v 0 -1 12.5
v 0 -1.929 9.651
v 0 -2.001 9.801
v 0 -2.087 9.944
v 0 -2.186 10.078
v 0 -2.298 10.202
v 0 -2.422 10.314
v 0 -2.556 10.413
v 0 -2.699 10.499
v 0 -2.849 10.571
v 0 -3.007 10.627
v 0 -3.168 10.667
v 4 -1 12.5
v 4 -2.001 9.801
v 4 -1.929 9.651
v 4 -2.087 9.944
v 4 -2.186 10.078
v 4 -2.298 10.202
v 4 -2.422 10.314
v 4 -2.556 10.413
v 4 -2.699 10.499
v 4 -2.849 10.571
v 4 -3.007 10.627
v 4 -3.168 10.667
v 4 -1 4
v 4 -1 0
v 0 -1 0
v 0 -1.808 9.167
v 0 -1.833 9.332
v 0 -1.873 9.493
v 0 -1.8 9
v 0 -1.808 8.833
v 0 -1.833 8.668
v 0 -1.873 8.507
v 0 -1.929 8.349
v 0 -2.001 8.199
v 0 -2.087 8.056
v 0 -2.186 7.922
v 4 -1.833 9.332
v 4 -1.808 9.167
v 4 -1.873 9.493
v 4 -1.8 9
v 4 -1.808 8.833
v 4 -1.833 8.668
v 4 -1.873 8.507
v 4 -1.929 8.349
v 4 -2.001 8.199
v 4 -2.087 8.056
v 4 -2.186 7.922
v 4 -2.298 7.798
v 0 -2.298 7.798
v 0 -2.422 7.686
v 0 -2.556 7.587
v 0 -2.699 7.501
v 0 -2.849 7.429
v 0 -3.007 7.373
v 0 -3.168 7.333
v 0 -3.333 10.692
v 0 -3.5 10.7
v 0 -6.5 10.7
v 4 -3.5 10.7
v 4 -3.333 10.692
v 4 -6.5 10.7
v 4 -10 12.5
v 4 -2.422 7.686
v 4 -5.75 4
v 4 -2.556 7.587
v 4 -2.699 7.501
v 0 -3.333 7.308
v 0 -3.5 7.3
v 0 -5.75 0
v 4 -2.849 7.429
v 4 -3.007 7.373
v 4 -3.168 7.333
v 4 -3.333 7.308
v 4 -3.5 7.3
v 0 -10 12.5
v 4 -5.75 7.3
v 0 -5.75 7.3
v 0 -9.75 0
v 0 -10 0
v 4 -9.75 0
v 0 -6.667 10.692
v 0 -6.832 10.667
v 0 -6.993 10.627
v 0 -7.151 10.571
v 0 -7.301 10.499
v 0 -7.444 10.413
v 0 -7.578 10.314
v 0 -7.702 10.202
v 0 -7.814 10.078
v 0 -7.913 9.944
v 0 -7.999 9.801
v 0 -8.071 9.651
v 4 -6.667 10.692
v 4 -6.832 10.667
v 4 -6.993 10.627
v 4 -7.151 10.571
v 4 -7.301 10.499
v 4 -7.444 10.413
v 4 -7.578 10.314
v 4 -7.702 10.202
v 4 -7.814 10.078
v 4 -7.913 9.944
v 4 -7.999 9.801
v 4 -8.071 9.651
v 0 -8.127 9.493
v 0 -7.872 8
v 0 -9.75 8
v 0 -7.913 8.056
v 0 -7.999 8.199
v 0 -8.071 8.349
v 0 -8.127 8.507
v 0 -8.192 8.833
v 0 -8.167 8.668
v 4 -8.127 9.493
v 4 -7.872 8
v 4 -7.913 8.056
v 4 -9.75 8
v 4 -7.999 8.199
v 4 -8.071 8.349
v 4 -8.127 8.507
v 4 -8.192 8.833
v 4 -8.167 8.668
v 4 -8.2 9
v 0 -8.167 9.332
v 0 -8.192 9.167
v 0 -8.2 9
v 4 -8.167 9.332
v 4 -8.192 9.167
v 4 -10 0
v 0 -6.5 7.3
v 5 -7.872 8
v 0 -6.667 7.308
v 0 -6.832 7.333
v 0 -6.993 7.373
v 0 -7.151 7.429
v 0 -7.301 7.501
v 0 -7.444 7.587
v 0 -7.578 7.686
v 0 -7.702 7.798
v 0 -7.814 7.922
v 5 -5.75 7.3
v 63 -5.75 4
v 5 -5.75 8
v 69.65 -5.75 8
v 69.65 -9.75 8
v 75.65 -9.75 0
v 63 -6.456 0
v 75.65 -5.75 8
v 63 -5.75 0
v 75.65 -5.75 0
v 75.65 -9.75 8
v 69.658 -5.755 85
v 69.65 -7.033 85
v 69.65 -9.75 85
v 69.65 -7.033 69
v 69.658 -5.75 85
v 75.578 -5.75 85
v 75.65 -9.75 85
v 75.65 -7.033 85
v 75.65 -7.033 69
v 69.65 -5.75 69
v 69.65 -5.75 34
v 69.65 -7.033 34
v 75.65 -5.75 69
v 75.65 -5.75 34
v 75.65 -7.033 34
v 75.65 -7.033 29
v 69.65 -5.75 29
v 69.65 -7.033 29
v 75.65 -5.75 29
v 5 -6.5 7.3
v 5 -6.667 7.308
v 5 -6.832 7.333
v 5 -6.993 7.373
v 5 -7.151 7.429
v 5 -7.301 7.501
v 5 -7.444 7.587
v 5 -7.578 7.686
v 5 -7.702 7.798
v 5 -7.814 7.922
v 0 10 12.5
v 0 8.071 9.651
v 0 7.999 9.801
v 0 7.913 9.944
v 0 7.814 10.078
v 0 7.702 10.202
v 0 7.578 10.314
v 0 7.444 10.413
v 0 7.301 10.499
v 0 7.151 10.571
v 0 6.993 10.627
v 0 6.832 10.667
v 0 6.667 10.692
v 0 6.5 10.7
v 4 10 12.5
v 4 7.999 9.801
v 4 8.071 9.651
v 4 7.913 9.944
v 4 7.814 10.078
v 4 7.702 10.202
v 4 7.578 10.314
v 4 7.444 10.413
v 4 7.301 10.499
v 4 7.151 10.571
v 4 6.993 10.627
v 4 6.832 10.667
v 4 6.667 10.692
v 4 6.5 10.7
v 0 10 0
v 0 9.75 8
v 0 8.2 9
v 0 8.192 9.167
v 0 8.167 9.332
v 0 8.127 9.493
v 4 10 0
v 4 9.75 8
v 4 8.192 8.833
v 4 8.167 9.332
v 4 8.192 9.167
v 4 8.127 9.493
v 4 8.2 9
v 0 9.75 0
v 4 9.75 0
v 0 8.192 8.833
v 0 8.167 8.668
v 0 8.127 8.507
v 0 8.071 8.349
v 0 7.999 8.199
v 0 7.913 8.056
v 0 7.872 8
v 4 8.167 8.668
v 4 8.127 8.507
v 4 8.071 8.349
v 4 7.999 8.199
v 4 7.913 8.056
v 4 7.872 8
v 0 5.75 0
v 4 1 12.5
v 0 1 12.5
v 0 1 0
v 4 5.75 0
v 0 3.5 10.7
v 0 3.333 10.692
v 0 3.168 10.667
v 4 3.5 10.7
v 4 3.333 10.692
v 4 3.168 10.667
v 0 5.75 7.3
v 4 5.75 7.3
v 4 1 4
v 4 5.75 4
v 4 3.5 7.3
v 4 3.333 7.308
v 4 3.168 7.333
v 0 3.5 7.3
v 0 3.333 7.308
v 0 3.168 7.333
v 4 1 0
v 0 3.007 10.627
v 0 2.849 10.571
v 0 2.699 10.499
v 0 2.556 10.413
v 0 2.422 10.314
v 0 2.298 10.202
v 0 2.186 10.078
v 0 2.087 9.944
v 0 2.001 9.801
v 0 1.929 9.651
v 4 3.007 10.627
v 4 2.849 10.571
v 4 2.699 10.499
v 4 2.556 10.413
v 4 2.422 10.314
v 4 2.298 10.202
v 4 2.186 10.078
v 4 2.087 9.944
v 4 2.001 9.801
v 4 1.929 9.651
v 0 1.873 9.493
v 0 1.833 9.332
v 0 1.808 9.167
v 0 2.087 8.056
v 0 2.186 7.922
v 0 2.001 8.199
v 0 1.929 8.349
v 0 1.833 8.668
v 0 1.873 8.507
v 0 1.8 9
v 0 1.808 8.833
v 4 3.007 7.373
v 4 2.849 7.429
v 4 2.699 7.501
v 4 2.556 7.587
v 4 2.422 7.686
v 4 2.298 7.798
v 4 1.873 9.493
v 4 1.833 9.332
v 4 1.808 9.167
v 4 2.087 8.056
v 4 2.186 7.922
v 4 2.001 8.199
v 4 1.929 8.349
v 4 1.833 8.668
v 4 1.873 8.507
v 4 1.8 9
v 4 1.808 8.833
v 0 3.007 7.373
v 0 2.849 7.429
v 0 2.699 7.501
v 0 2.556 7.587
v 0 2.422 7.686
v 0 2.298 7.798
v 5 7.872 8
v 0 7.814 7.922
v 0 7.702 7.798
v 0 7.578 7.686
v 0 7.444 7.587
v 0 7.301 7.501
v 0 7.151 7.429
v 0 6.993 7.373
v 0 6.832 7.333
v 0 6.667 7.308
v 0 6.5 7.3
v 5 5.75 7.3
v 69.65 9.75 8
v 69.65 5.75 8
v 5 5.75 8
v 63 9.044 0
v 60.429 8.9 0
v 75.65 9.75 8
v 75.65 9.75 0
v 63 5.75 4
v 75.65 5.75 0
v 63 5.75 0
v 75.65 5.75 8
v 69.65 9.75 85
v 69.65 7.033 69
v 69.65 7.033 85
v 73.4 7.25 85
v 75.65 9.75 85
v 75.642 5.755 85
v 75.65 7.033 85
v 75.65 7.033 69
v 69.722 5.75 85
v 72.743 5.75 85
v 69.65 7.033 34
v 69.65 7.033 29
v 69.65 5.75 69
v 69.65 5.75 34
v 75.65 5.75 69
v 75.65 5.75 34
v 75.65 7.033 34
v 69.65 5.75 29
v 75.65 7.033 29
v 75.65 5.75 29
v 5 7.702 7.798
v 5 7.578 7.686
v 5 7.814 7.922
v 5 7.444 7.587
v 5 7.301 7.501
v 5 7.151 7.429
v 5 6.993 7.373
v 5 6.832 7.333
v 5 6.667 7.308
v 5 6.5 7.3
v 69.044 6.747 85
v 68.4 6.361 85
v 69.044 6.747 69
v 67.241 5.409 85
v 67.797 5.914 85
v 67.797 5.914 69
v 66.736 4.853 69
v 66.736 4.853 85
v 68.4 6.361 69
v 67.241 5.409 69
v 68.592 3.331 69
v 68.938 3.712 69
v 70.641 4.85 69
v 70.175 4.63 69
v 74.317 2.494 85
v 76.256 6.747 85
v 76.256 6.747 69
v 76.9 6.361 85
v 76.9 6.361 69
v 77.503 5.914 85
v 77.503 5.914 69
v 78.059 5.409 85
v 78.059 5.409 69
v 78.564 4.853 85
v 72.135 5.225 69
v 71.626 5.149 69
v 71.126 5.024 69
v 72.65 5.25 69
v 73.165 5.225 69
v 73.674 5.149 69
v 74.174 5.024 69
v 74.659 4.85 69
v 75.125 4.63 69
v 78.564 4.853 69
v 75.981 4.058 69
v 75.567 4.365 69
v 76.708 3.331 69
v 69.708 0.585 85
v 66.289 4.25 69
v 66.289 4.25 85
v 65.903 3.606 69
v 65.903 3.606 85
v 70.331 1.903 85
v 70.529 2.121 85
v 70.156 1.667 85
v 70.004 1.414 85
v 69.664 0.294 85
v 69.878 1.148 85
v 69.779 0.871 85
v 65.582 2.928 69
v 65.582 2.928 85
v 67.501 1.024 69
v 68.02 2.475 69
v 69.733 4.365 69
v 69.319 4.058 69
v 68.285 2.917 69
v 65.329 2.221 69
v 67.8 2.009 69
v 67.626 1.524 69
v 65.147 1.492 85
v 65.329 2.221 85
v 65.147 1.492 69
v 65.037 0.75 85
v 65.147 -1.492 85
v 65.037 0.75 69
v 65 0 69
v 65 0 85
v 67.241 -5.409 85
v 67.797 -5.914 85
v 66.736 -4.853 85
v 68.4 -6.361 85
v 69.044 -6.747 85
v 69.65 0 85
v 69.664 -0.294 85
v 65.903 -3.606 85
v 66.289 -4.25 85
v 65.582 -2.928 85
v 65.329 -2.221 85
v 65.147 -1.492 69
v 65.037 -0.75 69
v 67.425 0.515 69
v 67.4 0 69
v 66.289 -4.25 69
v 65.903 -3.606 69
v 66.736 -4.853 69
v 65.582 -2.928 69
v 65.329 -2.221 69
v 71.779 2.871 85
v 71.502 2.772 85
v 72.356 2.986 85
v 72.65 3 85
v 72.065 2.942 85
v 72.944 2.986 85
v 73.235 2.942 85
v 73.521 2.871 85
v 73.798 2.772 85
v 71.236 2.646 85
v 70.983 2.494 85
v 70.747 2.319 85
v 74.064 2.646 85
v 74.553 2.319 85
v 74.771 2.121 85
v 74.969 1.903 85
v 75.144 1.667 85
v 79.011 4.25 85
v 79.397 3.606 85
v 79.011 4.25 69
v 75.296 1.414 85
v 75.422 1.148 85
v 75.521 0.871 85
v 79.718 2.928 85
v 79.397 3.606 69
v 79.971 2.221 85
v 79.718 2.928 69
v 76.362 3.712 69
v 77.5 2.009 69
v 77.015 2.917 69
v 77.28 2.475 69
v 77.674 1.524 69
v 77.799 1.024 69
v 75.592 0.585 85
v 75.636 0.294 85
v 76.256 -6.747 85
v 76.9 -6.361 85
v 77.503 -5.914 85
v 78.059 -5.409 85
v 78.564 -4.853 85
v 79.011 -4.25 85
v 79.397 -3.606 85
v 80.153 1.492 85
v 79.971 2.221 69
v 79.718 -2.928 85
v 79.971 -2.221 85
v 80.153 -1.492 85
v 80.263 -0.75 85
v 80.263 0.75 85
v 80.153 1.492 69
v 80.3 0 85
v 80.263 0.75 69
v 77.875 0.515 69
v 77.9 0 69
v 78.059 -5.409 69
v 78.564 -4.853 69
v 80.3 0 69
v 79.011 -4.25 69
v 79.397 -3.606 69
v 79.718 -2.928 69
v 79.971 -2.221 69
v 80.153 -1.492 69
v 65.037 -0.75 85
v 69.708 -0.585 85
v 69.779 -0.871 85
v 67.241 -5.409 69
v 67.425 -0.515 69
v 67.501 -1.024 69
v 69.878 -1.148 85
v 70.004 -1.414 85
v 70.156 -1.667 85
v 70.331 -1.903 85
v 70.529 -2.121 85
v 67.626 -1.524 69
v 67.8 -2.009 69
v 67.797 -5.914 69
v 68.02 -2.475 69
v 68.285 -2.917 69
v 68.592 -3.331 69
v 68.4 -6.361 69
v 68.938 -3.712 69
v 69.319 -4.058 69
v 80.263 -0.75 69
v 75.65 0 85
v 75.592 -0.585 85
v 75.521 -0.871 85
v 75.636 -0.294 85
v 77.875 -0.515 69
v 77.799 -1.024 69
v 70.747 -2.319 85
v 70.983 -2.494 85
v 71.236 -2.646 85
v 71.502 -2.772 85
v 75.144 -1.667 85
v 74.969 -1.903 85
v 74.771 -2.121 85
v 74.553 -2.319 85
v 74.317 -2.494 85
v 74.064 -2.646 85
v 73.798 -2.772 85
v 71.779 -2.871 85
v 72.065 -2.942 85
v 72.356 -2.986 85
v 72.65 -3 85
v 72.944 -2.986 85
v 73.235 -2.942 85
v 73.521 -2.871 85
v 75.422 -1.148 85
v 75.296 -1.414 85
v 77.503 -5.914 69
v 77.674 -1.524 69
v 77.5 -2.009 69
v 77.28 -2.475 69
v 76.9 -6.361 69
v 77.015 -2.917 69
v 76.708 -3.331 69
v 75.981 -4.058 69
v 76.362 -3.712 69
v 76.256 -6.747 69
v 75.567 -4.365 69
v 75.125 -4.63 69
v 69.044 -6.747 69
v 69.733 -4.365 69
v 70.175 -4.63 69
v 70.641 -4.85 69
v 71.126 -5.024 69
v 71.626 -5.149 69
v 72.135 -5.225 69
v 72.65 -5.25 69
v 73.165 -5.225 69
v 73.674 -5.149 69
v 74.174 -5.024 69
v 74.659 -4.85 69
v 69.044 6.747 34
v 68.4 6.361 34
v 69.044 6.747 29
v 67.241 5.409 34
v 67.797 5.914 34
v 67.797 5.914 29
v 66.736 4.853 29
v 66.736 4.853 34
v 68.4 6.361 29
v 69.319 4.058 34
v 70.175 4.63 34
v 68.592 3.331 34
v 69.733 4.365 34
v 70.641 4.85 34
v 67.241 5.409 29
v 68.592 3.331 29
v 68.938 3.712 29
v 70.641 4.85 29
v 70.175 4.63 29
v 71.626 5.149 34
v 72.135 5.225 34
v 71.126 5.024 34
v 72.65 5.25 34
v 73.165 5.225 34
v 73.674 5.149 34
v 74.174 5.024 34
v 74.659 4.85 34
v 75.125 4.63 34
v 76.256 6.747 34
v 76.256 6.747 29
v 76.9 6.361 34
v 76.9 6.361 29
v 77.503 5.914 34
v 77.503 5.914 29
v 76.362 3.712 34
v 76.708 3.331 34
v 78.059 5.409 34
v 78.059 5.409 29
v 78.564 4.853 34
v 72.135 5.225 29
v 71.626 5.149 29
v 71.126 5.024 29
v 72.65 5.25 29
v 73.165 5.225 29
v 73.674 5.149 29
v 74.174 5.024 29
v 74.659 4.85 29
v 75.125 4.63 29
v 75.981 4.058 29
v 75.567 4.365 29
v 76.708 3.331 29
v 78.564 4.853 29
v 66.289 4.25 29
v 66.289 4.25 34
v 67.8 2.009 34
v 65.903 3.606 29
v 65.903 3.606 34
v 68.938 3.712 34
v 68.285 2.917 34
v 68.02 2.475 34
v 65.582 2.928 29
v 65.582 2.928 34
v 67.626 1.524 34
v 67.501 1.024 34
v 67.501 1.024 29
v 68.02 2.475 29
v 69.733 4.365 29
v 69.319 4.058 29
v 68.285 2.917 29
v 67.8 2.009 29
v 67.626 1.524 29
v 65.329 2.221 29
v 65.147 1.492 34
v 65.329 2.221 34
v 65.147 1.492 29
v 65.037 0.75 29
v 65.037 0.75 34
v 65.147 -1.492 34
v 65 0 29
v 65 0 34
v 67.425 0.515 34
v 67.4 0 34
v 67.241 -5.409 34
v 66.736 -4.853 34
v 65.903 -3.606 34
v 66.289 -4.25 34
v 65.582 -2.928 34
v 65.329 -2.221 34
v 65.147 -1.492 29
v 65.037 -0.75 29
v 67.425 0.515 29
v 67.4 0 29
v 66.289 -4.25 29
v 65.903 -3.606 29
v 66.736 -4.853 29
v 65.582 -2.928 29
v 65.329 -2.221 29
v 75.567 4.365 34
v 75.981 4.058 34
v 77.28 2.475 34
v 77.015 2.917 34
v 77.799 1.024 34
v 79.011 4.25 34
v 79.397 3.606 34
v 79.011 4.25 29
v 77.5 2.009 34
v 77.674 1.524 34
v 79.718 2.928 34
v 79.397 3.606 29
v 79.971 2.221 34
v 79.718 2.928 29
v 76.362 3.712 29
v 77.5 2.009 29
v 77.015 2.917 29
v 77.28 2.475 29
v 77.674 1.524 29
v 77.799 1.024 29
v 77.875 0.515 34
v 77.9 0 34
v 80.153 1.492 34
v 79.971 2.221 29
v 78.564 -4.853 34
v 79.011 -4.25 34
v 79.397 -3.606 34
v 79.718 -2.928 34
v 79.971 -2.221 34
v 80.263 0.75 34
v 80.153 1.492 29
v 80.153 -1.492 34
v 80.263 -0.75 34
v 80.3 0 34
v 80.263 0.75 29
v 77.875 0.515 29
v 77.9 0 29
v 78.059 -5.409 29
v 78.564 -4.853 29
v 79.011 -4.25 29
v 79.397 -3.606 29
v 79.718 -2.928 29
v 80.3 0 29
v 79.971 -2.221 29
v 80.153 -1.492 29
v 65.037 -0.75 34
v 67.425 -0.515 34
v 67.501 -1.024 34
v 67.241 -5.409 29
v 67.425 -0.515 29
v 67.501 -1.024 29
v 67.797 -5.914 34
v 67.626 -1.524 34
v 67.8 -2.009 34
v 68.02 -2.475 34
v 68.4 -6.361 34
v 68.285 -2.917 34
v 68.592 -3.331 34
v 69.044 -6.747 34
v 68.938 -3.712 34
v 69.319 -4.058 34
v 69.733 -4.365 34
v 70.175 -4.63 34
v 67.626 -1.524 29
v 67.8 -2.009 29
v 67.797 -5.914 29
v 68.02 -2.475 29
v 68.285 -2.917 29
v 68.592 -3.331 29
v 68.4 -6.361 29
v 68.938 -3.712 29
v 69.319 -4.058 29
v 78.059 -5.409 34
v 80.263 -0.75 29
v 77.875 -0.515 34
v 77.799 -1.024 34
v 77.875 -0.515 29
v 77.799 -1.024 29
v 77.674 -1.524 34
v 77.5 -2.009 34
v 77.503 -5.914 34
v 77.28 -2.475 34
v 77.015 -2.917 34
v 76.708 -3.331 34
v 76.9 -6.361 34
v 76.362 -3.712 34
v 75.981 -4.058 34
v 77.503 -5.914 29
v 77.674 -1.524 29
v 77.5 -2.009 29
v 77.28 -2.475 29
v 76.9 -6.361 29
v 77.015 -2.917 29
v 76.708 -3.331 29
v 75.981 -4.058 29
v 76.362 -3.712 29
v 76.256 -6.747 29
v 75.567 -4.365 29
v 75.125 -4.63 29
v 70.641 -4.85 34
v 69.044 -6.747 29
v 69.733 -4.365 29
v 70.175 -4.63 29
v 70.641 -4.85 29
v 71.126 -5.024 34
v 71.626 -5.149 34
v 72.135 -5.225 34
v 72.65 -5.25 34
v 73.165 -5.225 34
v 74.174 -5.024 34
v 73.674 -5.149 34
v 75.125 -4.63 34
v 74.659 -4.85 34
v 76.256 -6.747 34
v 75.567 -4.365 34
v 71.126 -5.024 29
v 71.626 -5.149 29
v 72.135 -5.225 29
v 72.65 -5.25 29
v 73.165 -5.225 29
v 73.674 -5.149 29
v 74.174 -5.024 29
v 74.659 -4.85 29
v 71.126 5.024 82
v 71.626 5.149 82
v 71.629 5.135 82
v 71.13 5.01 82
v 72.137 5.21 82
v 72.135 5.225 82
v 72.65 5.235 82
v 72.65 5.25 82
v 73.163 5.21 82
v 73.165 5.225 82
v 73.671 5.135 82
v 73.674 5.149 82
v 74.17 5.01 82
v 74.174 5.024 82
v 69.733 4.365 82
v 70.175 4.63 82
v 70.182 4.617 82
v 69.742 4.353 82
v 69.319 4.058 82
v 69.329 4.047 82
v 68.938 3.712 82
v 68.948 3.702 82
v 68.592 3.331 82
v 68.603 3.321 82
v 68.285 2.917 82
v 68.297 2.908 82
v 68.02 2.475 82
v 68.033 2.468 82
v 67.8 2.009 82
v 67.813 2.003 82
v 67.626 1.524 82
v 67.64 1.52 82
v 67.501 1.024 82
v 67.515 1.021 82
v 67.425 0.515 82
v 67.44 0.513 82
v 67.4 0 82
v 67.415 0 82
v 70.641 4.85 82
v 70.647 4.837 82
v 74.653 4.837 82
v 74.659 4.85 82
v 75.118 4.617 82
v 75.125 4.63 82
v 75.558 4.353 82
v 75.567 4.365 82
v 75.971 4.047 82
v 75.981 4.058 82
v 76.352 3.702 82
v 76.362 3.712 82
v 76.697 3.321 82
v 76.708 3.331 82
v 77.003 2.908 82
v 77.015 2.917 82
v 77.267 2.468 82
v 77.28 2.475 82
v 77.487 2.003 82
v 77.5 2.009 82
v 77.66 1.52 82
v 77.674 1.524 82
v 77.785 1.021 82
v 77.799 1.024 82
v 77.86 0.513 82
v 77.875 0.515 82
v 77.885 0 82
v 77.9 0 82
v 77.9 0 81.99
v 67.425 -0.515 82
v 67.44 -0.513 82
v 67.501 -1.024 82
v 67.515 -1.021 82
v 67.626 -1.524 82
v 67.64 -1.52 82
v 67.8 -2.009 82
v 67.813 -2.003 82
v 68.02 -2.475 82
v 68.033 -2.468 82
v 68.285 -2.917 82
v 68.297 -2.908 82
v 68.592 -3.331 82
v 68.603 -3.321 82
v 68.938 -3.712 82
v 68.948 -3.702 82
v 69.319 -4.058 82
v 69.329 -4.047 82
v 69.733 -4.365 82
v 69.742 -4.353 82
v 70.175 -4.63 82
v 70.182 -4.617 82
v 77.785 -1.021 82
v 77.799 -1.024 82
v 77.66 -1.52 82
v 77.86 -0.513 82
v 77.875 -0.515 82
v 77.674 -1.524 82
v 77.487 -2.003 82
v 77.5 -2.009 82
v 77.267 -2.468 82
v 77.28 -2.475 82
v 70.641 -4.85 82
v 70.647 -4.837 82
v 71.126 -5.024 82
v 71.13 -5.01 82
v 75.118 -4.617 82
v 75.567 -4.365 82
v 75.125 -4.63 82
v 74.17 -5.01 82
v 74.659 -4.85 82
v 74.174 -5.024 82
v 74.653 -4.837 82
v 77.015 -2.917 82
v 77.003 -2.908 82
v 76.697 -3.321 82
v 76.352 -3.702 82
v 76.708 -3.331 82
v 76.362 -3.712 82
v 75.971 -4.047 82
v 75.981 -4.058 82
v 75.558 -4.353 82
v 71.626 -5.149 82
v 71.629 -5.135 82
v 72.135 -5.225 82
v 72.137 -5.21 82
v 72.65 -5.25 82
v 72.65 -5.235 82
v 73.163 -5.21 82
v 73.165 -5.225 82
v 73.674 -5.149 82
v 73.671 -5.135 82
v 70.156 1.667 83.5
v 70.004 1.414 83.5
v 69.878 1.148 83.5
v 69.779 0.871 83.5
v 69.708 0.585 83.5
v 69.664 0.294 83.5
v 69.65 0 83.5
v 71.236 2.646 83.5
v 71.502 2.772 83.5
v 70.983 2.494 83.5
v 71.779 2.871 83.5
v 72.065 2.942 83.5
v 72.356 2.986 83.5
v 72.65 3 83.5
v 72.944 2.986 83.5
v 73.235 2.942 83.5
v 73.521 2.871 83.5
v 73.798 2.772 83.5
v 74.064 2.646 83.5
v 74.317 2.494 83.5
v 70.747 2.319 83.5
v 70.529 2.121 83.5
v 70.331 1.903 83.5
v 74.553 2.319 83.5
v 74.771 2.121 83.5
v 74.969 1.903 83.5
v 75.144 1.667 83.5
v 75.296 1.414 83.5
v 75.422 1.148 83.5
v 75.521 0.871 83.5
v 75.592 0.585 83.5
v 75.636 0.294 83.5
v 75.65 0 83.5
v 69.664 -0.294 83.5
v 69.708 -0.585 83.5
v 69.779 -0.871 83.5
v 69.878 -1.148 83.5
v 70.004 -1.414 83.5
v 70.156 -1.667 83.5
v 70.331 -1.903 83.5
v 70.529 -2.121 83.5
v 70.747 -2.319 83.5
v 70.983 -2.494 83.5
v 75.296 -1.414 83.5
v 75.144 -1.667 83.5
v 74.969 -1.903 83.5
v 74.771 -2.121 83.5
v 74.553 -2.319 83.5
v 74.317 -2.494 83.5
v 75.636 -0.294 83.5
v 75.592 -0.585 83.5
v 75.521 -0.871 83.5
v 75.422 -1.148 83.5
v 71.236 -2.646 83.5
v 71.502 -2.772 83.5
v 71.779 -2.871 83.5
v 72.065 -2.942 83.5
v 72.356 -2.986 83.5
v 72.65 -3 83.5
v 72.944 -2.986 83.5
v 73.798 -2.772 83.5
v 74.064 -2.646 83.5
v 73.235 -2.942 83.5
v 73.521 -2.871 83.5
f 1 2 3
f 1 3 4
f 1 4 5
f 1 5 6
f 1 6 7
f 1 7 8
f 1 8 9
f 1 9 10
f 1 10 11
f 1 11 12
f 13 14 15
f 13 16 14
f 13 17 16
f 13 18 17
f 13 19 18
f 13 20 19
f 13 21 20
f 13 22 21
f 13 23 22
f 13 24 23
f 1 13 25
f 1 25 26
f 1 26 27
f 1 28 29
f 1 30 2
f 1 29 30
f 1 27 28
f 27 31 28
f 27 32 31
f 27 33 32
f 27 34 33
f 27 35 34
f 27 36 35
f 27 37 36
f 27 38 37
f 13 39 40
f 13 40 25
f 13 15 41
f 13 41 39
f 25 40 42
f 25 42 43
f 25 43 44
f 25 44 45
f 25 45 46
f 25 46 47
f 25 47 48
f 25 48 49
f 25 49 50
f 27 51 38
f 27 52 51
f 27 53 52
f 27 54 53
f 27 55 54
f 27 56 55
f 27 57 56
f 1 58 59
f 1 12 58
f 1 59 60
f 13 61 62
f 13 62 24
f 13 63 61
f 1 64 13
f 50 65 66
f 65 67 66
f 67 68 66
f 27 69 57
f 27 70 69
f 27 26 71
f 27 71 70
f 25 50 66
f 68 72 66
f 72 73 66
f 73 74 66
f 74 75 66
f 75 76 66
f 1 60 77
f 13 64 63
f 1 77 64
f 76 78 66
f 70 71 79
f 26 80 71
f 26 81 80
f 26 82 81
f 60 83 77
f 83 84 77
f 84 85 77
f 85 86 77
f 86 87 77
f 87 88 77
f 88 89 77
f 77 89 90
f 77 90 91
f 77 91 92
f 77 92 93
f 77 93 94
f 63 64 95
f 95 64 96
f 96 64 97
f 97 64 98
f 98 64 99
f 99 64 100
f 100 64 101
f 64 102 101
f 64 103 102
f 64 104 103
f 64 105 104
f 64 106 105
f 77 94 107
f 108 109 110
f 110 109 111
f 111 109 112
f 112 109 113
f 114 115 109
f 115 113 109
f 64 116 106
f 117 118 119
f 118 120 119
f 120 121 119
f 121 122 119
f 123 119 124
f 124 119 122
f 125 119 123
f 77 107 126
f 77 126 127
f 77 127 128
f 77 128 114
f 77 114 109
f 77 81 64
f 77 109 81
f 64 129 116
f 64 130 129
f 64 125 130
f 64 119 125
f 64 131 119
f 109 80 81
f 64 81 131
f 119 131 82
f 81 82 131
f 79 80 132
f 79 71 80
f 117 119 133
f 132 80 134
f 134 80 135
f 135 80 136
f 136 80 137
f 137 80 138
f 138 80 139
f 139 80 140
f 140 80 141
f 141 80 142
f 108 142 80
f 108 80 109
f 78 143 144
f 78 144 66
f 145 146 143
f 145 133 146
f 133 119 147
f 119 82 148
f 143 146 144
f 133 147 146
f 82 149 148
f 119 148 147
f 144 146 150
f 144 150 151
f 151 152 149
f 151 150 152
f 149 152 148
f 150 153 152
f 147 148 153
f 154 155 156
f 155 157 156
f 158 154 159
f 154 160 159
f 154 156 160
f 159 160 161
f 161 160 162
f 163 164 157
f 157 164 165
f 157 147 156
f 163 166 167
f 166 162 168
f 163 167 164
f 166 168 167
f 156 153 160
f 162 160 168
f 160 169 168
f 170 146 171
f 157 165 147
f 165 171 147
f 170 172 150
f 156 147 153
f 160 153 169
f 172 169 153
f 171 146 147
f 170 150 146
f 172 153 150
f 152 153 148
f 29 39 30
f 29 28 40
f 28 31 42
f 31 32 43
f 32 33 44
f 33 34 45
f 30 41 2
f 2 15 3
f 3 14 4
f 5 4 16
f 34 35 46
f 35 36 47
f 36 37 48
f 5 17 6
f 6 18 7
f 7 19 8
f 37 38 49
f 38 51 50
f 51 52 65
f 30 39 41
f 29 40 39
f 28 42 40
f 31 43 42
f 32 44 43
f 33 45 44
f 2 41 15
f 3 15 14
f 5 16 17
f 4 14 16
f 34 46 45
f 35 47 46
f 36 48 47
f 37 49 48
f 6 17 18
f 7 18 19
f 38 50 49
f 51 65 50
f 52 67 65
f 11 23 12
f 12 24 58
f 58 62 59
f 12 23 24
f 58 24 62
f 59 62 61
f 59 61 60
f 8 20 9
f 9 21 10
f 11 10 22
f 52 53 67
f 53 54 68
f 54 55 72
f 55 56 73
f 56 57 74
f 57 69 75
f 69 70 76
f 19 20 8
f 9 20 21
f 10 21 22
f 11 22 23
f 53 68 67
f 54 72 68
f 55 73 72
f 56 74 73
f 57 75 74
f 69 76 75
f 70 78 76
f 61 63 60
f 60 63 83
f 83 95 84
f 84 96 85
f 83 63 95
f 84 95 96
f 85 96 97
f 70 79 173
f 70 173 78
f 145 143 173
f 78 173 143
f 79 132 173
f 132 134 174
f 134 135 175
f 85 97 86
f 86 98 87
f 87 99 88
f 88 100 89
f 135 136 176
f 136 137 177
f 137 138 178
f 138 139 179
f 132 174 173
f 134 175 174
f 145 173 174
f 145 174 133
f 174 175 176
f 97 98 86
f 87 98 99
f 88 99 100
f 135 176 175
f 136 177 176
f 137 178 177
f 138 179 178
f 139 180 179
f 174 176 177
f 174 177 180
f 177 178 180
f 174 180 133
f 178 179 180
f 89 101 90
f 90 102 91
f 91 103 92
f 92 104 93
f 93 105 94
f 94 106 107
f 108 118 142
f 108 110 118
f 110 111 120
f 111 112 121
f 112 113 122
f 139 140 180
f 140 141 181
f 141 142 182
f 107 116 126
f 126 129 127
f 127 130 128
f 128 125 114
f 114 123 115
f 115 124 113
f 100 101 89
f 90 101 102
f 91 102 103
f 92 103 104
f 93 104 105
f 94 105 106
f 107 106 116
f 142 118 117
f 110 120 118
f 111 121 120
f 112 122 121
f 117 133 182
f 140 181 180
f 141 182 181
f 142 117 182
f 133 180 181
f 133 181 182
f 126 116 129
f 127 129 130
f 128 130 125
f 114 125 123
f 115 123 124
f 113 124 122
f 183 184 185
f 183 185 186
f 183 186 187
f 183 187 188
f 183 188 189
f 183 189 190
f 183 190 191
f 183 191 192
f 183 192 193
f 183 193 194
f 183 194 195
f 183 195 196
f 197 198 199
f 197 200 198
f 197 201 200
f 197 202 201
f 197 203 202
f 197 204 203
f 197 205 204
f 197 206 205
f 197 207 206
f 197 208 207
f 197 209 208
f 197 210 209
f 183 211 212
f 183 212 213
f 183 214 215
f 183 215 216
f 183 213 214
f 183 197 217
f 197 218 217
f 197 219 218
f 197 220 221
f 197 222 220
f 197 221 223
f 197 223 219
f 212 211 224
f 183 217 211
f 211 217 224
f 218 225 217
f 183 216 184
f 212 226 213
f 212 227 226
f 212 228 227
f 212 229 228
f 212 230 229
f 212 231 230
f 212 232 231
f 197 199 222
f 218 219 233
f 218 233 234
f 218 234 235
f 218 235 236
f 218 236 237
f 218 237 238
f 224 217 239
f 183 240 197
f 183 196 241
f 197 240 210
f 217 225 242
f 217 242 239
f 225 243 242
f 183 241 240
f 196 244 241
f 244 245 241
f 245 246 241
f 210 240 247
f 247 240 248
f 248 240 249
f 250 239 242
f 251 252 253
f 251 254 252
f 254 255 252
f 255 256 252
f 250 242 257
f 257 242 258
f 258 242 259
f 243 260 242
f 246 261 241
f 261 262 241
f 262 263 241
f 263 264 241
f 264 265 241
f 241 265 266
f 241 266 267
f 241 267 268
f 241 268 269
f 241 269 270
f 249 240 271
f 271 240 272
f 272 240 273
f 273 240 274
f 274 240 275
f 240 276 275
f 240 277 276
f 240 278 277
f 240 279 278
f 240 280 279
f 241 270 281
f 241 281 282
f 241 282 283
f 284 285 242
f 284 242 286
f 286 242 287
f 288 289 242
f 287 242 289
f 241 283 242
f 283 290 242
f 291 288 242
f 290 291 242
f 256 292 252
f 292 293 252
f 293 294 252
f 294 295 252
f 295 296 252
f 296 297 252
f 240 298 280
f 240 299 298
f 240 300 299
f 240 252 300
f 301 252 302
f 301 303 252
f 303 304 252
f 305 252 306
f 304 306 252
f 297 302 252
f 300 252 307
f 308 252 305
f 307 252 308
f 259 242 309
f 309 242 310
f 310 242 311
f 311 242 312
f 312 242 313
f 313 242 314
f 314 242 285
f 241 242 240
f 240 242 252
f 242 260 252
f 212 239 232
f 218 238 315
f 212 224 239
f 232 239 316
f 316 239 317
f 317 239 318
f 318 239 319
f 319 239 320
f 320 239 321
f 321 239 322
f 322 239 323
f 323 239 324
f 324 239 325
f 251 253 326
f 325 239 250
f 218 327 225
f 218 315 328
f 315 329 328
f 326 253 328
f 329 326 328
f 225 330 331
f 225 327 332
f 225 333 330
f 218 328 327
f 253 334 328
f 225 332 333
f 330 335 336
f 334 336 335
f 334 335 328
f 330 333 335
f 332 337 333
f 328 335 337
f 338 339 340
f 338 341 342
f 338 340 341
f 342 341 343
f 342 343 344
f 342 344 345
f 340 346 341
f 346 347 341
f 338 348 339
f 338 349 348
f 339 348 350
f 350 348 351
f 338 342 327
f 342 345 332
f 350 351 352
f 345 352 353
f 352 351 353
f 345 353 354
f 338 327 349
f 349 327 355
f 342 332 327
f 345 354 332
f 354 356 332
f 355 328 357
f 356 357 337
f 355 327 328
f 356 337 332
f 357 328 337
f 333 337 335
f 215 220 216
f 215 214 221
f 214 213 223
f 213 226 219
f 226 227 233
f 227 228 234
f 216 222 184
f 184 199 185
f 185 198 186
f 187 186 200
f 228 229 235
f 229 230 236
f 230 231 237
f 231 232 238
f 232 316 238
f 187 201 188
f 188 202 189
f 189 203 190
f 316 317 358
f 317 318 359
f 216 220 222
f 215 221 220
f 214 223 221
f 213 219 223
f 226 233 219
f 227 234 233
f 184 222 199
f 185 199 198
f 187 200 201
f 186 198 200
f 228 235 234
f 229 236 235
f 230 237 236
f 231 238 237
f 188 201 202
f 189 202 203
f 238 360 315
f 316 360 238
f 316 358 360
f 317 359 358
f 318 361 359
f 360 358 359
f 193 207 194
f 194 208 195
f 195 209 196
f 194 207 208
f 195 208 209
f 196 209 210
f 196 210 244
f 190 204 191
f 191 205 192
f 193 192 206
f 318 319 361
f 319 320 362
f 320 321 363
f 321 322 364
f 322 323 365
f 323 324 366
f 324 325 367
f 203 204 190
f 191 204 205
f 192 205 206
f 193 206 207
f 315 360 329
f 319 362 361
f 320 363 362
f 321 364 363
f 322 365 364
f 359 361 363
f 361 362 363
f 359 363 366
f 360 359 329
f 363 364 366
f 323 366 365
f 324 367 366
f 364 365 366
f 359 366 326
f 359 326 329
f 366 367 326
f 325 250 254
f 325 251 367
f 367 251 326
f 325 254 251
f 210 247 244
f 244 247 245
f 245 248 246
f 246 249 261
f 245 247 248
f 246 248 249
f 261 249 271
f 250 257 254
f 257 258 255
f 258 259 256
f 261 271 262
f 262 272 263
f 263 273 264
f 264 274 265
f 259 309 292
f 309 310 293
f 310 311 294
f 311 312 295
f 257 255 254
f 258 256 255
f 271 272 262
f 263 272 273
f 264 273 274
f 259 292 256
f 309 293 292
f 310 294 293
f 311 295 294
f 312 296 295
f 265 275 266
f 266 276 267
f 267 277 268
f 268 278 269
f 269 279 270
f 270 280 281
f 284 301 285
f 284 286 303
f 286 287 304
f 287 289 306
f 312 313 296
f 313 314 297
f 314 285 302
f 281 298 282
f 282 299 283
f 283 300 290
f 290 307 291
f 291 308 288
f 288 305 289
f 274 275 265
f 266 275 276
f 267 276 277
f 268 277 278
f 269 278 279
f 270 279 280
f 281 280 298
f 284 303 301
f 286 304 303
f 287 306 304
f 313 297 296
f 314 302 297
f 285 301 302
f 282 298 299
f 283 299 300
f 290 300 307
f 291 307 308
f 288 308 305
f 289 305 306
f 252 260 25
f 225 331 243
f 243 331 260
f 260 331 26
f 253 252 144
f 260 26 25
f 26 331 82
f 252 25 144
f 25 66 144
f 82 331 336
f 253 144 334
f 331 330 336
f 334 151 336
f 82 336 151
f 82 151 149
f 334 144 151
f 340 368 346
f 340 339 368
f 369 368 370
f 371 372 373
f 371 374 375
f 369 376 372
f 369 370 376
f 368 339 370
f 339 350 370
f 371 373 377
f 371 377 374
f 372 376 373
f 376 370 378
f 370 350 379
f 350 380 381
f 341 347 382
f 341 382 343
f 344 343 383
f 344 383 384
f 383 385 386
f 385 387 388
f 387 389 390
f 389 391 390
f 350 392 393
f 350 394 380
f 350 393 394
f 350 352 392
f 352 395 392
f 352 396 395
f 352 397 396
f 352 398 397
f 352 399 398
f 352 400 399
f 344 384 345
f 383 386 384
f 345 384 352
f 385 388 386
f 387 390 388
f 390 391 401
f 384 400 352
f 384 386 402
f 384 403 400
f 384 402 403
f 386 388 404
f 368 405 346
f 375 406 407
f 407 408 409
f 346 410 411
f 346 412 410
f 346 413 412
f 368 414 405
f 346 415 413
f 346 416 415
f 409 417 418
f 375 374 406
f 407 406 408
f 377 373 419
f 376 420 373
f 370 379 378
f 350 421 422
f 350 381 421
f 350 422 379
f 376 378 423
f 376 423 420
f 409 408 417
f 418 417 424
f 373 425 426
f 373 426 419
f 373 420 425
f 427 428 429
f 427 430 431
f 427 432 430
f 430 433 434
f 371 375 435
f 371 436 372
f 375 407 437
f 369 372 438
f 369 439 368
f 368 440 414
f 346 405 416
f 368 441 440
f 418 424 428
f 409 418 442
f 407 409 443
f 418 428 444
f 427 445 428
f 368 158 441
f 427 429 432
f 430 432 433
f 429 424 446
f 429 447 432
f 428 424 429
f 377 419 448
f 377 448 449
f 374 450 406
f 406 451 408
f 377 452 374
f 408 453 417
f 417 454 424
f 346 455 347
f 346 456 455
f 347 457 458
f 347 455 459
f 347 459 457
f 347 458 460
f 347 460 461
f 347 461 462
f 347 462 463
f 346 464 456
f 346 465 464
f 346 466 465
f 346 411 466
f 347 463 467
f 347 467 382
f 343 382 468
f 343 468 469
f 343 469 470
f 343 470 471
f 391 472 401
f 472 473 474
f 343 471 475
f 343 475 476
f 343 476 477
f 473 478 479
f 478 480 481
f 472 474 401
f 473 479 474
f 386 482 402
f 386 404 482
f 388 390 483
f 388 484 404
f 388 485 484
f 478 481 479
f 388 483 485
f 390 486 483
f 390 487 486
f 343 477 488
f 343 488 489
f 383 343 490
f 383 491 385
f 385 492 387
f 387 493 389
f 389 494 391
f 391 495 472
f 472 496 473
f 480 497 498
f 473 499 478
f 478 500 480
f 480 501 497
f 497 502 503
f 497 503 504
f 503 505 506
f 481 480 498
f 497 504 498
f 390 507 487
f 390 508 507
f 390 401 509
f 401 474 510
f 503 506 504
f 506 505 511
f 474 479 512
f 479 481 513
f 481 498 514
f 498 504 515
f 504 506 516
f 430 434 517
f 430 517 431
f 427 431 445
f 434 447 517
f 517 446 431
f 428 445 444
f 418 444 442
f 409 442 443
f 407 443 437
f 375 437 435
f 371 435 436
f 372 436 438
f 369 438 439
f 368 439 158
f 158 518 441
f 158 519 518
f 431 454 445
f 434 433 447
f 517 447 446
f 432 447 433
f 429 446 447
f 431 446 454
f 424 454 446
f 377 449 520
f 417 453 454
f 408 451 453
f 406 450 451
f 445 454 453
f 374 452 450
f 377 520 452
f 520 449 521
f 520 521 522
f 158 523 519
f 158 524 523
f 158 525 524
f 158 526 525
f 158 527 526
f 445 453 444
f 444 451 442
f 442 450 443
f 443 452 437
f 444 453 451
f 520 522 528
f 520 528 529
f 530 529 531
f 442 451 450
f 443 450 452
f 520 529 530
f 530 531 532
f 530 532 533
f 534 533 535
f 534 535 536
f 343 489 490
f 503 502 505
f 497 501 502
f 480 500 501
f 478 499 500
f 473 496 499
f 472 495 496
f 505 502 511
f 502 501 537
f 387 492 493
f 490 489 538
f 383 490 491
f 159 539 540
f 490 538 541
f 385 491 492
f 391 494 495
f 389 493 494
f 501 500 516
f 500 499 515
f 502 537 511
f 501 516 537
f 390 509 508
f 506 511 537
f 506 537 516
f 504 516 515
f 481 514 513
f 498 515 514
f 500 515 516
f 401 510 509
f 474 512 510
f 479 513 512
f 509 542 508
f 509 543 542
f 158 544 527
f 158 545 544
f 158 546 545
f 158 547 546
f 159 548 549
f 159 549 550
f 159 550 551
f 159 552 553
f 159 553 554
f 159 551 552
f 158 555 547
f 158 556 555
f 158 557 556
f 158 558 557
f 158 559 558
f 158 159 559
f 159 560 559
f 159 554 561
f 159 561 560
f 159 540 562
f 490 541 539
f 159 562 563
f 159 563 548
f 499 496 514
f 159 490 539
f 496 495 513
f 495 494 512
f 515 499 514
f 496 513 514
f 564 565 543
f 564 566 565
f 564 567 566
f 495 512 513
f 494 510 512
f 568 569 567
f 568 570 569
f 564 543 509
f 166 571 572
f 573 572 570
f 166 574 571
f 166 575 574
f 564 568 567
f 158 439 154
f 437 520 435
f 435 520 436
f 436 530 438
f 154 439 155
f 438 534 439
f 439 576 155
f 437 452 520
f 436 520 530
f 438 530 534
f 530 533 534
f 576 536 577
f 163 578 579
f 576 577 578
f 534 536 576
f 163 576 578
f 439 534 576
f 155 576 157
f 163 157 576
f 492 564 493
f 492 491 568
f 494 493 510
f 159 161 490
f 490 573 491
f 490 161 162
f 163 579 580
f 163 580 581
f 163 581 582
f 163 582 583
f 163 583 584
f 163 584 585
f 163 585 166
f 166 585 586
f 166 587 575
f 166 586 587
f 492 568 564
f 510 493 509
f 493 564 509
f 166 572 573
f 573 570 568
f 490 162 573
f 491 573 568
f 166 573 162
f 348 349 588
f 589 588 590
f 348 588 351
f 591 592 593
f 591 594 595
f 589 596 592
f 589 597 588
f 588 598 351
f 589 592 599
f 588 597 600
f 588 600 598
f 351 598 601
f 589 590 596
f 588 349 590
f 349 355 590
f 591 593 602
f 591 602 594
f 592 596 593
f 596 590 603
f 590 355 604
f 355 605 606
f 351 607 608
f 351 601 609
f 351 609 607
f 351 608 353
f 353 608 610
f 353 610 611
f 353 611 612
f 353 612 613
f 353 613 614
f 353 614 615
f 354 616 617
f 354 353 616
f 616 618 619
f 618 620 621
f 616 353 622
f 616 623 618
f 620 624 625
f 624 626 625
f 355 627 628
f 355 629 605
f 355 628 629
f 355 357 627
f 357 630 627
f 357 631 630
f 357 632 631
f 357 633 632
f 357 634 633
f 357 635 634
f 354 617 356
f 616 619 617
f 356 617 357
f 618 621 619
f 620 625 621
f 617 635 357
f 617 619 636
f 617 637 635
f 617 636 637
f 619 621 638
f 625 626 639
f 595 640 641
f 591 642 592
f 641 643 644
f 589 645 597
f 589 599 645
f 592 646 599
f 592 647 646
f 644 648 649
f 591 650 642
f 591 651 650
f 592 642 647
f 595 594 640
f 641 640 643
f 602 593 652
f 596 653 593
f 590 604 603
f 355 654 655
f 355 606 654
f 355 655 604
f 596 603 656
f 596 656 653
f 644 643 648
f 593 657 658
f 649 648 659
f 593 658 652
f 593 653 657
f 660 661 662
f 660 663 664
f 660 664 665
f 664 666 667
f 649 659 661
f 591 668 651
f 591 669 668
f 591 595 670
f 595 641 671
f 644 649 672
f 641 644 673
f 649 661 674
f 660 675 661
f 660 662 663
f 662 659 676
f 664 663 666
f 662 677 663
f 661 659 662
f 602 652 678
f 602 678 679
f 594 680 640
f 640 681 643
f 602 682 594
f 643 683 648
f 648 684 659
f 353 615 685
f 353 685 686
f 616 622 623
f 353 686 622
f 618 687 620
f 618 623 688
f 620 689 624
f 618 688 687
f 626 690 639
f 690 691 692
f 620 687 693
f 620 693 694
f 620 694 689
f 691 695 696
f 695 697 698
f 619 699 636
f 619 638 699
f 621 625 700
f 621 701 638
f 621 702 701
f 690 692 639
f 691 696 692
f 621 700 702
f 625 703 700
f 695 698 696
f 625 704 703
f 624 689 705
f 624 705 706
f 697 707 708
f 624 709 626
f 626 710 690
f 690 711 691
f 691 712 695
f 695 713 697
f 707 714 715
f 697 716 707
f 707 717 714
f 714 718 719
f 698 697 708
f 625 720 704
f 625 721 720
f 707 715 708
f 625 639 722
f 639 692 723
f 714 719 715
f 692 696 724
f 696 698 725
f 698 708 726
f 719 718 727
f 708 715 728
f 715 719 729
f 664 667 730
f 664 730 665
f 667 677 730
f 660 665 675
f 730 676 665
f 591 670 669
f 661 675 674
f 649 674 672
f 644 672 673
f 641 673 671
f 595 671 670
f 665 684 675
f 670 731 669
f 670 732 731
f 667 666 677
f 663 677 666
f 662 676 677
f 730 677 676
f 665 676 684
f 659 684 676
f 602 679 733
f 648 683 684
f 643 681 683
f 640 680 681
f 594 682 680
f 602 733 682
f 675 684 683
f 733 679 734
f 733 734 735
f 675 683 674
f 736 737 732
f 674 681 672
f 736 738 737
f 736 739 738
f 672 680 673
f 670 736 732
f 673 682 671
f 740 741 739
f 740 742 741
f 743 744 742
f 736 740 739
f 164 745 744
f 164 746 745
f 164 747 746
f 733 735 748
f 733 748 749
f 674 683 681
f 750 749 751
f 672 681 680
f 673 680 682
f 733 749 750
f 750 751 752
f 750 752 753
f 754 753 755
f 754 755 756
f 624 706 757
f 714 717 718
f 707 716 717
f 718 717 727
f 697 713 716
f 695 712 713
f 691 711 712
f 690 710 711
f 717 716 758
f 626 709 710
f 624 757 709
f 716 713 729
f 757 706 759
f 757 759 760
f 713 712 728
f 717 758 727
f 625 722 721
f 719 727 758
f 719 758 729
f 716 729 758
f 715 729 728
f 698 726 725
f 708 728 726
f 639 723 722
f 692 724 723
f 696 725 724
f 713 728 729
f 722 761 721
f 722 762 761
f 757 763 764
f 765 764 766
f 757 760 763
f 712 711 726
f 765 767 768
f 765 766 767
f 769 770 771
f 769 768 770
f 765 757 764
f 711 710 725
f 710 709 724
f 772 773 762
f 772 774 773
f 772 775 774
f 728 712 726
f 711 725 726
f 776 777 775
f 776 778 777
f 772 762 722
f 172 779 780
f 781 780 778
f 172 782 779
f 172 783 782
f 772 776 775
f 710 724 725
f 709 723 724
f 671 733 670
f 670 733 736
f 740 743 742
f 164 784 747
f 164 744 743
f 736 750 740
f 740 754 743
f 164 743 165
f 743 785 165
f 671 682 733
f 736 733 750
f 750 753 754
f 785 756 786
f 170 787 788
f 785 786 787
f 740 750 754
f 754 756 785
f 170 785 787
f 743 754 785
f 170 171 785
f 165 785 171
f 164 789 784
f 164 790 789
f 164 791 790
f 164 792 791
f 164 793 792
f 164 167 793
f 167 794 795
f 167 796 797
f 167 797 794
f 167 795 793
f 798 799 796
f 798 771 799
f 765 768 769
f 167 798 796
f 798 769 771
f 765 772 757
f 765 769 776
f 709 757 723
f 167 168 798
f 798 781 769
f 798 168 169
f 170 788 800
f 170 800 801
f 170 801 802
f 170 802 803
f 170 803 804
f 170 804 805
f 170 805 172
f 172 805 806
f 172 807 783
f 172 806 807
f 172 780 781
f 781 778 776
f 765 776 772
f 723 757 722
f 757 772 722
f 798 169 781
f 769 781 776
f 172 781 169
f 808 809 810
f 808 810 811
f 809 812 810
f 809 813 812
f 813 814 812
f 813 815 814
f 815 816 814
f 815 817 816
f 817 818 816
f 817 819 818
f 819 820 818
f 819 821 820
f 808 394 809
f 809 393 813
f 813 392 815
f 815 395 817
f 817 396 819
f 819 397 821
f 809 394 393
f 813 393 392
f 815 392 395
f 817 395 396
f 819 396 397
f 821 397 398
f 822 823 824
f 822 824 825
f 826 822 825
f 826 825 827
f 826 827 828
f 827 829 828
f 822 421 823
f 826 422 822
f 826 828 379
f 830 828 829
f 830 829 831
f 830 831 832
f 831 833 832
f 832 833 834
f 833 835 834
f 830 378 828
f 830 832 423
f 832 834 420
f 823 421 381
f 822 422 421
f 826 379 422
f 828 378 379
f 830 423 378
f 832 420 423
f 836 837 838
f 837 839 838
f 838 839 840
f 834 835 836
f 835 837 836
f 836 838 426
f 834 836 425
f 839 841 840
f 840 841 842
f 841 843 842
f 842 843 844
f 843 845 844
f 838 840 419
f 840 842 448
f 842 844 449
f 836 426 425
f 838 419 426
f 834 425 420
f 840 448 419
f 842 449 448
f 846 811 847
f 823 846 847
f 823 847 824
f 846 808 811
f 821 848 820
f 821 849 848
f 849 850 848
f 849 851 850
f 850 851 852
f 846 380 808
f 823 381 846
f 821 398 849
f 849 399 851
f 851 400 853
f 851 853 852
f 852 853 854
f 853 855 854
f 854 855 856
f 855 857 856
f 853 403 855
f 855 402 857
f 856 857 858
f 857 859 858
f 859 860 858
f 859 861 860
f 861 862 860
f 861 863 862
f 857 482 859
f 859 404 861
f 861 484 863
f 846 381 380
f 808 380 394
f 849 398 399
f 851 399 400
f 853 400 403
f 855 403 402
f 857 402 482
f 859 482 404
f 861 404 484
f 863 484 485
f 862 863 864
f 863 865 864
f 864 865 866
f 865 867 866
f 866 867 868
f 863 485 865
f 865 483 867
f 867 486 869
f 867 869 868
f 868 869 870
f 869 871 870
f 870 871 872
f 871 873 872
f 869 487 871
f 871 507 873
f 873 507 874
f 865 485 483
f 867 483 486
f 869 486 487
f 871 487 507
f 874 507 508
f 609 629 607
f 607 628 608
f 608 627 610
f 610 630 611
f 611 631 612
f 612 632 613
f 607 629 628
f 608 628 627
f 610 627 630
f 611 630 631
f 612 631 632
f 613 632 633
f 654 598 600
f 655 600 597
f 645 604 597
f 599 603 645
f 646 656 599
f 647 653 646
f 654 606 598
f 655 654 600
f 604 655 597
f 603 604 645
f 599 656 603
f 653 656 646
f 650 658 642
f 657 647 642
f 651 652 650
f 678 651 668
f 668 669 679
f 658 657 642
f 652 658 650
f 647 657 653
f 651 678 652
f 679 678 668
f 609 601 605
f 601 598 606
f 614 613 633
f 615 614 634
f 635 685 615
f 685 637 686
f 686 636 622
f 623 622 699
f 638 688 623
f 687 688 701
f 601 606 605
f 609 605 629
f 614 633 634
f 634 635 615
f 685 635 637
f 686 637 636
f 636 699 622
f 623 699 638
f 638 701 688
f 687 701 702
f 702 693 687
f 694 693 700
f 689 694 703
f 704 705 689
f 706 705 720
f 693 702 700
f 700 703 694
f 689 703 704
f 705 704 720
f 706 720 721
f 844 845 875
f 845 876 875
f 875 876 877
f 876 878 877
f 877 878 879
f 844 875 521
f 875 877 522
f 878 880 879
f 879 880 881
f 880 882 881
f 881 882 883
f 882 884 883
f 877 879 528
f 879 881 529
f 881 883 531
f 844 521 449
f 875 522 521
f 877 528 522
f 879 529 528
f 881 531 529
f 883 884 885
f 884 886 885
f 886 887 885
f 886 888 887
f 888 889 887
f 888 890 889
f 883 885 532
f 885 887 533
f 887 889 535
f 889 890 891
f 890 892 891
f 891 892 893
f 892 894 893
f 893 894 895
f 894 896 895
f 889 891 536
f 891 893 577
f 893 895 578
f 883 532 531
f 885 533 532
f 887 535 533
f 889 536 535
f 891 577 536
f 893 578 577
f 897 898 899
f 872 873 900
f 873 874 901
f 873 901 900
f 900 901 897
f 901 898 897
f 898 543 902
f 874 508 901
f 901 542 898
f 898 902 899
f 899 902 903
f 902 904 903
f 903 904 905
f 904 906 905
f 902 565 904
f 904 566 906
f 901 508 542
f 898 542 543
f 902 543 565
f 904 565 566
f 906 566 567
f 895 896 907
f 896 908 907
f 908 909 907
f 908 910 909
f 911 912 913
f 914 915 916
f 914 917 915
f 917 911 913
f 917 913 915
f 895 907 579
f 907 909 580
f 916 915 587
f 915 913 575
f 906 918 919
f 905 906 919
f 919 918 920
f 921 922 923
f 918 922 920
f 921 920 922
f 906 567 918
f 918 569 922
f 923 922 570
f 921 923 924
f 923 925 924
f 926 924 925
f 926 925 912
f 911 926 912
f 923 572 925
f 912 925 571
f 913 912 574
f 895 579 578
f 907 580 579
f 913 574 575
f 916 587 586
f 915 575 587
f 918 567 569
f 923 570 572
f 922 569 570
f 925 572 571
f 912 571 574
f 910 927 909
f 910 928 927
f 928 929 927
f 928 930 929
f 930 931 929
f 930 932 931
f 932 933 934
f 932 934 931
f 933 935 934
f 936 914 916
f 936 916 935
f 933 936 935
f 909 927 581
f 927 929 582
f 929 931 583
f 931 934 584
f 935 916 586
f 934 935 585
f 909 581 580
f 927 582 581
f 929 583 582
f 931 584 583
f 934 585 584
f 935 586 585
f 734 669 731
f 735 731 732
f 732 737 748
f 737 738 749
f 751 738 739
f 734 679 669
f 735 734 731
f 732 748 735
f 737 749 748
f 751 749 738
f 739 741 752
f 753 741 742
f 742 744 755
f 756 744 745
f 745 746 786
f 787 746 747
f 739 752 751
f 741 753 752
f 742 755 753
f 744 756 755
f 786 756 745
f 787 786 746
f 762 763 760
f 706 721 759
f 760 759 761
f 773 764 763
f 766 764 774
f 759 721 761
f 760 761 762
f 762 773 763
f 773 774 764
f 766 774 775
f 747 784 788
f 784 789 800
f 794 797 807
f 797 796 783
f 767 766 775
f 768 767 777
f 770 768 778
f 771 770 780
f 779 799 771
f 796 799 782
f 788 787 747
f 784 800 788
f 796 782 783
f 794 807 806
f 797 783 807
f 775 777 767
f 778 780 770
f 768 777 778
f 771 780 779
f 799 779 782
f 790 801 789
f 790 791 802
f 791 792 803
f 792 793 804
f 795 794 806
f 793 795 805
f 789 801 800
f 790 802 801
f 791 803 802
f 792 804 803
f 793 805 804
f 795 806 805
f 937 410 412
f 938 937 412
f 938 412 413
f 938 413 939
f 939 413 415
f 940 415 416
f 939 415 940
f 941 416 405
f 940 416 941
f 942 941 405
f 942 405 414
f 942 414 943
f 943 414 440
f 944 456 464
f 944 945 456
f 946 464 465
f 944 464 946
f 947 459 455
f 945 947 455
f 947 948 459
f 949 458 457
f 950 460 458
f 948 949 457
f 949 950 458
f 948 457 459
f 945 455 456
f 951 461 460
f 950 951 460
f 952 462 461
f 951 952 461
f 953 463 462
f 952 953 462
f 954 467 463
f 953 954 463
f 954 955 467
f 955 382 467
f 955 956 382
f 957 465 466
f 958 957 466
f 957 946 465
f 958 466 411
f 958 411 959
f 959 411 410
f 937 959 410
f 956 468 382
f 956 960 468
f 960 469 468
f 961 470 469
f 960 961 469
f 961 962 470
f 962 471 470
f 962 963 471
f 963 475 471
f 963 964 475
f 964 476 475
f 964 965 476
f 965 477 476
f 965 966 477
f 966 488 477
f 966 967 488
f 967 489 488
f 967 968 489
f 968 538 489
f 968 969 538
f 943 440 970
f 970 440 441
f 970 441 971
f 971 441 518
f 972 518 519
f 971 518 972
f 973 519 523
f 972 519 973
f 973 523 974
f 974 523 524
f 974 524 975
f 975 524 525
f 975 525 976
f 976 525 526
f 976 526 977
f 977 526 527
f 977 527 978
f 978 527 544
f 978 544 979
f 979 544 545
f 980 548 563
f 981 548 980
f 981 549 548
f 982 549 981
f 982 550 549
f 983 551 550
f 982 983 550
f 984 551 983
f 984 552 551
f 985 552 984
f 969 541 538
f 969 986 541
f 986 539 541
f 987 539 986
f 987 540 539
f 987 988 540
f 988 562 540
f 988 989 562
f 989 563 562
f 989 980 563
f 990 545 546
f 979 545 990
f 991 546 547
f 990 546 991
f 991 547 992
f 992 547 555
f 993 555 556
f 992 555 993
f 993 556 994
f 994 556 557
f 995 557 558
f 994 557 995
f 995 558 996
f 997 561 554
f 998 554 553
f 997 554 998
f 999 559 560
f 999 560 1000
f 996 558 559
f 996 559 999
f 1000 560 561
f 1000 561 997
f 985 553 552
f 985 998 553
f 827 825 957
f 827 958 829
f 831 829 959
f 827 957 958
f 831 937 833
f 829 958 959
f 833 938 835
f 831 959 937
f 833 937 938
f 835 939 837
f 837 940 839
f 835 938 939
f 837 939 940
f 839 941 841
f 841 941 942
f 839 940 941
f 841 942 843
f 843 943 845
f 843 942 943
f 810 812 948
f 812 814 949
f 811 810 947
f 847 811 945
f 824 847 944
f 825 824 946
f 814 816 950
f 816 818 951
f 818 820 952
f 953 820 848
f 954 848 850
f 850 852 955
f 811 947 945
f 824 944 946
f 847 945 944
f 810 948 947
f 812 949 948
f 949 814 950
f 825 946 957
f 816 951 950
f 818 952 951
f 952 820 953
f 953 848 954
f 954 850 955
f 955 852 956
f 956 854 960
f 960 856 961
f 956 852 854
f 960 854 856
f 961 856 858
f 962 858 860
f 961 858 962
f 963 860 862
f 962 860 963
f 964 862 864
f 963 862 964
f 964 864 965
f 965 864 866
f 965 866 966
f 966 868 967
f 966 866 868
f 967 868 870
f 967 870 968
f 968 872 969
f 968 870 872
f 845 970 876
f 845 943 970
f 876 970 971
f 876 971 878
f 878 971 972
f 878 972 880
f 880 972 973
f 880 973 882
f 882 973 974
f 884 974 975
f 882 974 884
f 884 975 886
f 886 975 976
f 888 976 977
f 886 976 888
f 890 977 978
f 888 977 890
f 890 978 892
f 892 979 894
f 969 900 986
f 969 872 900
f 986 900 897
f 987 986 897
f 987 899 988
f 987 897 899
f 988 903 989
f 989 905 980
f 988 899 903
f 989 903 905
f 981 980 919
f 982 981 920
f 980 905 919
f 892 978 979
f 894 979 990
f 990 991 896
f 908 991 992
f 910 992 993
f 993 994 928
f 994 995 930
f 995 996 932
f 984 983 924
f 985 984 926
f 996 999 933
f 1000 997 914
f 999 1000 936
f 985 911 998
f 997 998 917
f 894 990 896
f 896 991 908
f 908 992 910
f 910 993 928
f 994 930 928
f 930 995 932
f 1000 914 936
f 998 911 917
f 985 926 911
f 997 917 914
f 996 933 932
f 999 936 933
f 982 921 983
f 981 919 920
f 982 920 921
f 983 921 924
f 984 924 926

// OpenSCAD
// Stifthalter v4 für den Artillery Genius Pro (Handschrift-Plotter)
//
// Form nach Konzeptbild des Nutzers (proben/WhatsApp Image 2026-11-01 at 20.44.52.jpeg):
//   - zwei getrennte Arme, je einer an den 2 kleinen Schrauben des blauen Metallwinkels über
//     dem blauen Kasten ("Gruppe 2"), gehen nach vorn über den Kasten und dann davor nach unten
//   - unten ein Becher; der Stift steht mit seiner Spitzen-Verjüngung auf dem Absatz,
//     die Mine schaut unten durch das kleine Loch heraus
//   - oben offen: Stift einfach nach oben herausziehen (durch den Führungsring auf halber Höhe)
//   - KEINE Feder: der Stift liegt durch sein Eigengewicht auf ("schwimmend"). Drückt das Papier,
//     hebt er sich an. Z0 wird vor dem Start von Hand auf Papier gesetzt (G92 Z0), daher muss die
//     Spitzenhöhe nicht genau stimmen – nur tiefer als die Düse.
// Montage: immer nur EINE Schraube lösen, Arm dahinter, wieder fest, dann die zweite.
//
// Koordinaten: X = nach vorn (weg vom Winkel), Y = waagerecht entlang des Winkels,
//   Z = senkrecht, Ursprung = Mitte zwischen den beiden Schrauben auf der Winkelfläche.

/* [Gemessen] */
schraube_abstand = 10;    // vom Foto 20.27 abgelesen (~1 cm); Langlöcher gleichen ±1,5 mm aus
langloch         = 1.5;
schraube_d       = 3.4;   // M3 angenommen
kopf_d           = 6;
duese_unten      = 75;    // vom Foto (~75 mm); unkritisch
kasten_vor       = 63;    // gemessen 01.11.: Kasten-Vorderseite → Schraubenköpfe 60 mm, + ~3 mm Kopfhöhe
stift_d          = 10;    // gemessen
spitze_d         = 6;     // Loch unten: Mine/Spitzenkonus muss durchpassen, Schaft nicht

/* [Konstruktion] */
gesamt_hoehe = 85;    // Wunsch Nutzer 01.11.: Oberkante Arm bis Unterkante Becher
staerke      = 4;     // Materialstärke der Arme (wie im Konzeptbild)
arm_tief     = 6;     // Tiefe der senkrechten Arme (X)
luft         = 2;     // Abstand Arme ↔ Kasten
lasche_unten = 3.5;   // Lasche reicht so weit unter die Schraubenmitte (Kasten-Oberkante knapp darunter)
oben         = 9;     // Oberkante von Lasche und Arm über Schraubenmitte
arm_hoehe    = 8;     // Höhe des waagerechten Teils (lange Auskragung → steifer)
spiel        = 0.5;
wand         = 2.4;
becher_h     = 16;
boden        = 3;
becher_ueber_duese = 8;   // (nicht mehr benutzt, Höhe kommt aus gesamt_hoehe)
ring_z       = -25;  // Höhe des oberen Führungsrings (Unterkante)
$fn = 64;

bohr_r     = (stift_d + spiel) / 2;
becher_r   = bohr_r + wand;
achse_x    = kasten_vor + luft + becher_r;    // Stiftachse
z_unten    = oben - gesamt_hoehe;                 // Unterkante Becher
arm_innen  = bohr_r + 0.5;                    // Arme laufen außen am Stift vorbei
arm_aussen = arm_innen + staerke;
lasche_y   = max(arm_aussen, schraube_abstand / 2 + kopf_d / 2 + 2);

module zyl_x(d, l) { rotate([0, 90, 0]) cylinder(d = d, h = l); }

module arm(s) {   // s = +1 / -1 (Seite)
    y0 = s > 0 ? arm_innen : -arm_aussen;
    difference() {
        union() {
            // Lasche an der Schraube (liegt flach an der Winkelfläche)
            translate([0, s > 0 ? 1 : -lasche_y, -lasche_unten]) cube([staerke, lasche_y - 1, lasche_unten + oben]);
            // waagerecht nach vorn über den Kasten
            translate([0, y0, oben - arm_hoehe]) cube([achse_x + arm_tief / 2, staerke, arm_hoehe]);
            // senkrecht nach unten vor dem Kasten bis zum Becher
            translate([achse_x - arm_tief / 2, y0, z_unten]) cube([arm_tief, staerke, oben - z_unten]);
        }
        hull() for (v = [-langloch, langloch])
            translate([-1, s * schraube_abstand / 2 + v, 0]) zyl_x(schraube_d, staerke + 2);
    }
}

module halter() {
    difference() {
        union() {
            arm(1); arm(-1);
            // durchgehende Platte zwischen den Armen über dem Kasten, endet hinter dem Stift
            translate([staerke, -arm_aussen, oben - 4]) cube([achse_x - becher_r - 2 - staerke, 2 * arm_aussen, 4]);
            translate([achse_x, 0, z_unten]) cylinder(r = becher_r, h = becher_h);
            // Führungsring oben: versteift die Arme, Stift bleibt nach oben herausziehbar
            translate([achse_x, 0, ring_z]) cylinder(r = becher_r, h = 5);
        }
        // Becher: Schaft-Bohrung oben, kleines Loch unten für die Mine, kegeliger Absatz dazwischen
        translate([achse_x, 0, z_unten + boden]) cylinder(r = bohr_r, h = 200);
        translate([achse_x, 0, z_unten - 1]) cylinder(d = spitze_d, h = boden + 2);
        translate([achse_x, 0, z_unten + boden - 1.5]) cylinder(d1 = spitze_d, d2 = 2 * bohr_r, h = 1.51);
    }
}

// Druckanordnung: kopfüber (Oberseite der Arme liegt auf dem Bett), keine Stützen nötig
druck = true;
if (druck) translate([0, 0, oben]) rotate([180, 0, 0]) halter();
else halter();
